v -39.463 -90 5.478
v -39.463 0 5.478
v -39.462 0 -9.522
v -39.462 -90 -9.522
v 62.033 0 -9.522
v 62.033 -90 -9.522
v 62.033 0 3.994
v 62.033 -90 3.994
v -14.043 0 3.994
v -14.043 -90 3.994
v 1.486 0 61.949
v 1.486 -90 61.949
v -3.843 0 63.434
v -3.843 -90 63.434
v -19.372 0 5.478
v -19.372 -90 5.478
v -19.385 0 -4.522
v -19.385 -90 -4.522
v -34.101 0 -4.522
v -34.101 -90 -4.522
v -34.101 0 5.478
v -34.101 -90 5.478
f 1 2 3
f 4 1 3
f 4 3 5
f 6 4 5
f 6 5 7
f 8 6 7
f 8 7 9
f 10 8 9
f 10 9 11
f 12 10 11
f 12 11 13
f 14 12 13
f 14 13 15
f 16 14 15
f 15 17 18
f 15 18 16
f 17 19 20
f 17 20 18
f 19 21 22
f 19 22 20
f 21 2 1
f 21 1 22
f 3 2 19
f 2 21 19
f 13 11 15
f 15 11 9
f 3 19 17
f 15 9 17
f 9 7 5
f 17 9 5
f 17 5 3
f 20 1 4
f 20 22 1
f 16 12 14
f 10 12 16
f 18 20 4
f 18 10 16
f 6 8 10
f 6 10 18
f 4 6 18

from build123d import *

# Parameters (mm, degrees)
PAD_DEPTH = 90


with BuildPart() as part:
    # Sketch → Pad (new body)
    with BuildSketch(Plane.XZ):
        Polygon((-39.462553, 5.478498), (-39.4624, -9.521502), (62.033083, -9.521502), (62.033083, 3.99388), (-14.042966, 3.99388), (1.486176, 61.94943), (-3.843011, 63.434039), (-19.372154, 5.478489), (-19.385466, -4.521511), (-34.101345, -4.521511), (-34.101345, 5.478498), align=None)
    extrude(amount=PAD_DEPTH)


solid = part.part
